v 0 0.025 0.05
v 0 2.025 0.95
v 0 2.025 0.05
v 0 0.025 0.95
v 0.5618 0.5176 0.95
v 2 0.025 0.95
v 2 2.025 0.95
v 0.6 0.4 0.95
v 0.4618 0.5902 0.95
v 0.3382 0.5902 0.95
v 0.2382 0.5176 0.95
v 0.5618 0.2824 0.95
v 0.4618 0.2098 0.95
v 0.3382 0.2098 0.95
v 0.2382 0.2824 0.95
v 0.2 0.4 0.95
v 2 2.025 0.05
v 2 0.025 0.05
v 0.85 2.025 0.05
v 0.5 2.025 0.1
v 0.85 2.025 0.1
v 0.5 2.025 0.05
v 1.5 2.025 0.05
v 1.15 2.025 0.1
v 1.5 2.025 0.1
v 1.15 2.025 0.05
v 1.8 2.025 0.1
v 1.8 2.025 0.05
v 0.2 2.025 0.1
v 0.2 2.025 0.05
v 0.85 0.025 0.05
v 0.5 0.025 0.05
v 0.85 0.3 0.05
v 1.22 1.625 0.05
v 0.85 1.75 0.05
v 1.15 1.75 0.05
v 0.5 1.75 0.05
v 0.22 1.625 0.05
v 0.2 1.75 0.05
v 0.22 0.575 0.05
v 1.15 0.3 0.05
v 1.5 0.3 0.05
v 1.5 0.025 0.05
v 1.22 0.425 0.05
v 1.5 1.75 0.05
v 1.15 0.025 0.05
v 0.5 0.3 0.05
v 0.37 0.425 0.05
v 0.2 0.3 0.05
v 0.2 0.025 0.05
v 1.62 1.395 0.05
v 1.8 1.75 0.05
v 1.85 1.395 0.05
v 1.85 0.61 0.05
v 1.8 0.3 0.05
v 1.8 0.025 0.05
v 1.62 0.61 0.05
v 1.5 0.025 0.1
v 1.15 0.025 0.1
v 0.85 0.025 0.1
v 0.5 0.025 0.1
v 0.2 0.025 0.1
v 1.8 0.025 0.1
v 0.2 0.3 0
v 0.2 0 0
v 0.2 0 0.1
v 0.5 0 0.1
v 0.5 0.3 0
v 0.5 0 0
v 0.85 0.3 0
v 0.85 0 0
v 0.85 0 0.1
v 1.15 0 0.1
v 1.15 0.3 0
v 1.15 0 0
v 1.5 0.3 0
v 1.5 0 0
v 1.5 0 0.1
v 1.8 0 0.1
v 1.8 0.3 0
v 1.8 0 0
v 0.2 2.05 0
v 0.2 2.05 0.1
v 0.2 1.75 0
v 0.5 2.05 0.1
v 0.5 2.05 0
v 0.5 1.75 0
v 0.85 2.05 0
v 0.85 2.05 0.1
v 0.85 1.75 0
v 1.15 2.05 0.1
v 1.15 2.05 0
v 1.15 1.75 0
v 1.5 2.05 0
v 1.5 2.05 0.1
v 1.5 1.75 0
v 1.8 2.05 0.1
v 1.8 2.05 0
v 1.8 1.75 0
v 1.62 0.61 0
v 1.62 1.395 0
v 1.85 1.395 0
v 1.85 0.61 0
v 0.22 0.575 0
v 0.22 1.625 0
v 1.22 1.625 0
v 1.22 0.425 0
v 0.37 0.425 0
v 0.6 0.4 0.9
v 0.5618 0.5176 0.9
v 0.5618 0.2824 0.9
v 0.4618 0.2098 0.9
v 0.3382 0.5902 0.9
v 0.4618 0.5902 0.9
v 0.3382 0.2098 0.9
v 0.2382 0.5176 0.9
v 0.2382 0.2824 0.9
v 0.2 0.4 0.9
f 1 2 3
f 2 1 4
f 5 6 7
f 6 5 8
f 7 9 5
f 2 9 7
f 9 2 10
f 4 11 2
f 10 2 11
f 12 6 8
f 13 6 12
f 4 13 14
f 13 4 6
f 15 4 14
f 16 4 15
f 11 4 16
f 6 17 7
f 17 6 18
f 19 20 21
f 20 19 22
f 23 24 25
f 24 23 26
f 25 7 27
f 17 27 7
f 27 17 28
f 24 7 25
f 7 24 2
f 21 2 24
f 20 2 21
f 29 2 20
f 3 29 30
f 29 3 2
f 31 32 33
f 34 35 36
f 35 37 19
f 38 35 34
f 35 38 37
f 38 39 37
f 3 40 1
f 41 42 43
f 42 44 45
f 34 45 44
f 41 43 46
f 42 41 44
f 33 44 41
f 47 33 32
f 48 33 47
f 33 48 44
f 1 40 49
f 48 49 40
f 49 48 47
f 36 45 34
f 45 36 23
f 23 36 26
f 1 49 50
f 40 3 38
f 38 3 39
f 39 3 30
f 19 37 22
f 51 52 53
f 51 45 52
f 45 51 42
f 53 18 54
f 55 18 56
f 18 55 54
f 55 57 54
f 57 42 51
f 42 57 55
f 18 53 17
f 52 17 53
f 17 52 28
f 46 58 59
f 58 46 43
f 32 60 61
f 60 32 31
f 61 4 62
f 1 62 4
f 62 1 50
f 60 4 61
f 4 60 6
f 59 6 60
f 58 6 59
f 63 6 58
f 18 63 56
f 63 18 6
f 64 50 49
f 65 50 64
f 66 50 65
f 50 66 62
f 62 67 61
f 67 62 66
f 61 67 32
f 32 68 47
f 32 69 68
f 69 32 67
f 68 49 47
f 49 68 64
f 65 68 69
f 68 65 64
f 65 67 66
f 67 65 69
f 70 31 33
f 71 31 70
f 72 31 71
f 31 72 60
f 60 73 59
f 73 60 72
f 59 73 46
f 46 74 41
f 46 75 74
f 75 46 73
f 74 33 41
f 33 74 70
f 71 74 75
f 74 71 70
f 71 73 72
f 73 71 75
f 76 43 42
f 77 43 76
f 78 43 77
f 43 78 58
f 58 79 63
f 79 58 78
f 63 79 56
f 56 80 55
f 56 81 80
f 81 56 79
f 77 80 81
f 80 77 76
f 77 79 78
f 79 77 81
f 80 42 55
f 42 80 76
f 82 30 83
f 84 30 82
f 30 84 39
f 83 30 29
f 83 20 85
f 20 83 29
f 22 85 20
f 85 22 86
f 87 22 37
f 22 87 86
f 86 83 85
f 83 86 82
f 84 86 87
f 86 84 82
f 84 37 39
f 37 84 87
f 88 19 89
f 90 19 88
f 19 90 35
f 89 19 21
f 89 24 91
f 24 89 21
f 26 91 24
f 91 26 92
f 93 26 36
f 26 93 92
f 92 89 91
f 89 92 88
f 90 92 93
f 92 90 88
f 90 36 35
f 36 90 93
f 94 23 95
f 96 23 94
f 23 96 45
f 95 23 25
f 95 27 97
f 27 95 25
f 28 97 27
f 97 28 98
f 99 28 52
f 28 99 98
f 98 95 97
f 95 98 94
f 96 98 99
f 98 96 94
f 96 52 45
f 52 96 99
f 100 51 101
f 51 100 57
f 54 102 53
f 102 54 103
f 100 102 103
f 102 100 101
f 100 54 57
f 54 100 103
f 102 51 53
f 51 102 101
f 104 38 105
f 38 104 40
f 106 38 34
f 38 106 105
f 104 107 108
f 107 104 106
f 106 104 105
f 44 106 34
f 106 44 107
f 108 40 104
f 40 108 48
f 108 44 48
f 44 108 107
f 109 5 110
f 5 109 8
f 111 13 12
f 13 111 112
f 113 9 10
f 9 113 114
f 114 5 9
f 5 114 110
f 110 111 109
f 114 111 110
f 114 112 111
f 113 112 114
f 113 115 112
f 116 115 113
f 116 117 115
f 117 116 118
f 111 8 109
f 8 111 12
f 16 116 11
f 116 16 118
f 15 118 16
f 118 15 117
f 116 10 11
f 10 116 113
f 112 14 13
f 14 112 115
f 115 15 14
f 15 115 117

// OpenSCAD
difference()
{
    union()
    {
        translate([0,0.025,0.05])
        cube([2,2,0.9]);

        translate([0.2,0,0])
        cube([0.3,0.3,0.1]);
        translate([0.2+0.65,0,0])
        cube([0.3,0.3,0.1]);
        translate([0.2+2*0.65,0,0])
        cube([0.3,0.3,0.1]);

        translate([0.2,2-0.25,0])
        cube([0.3,0.3,0.1]);
        translate([0.2+0.65,2-0.25,0])
        cube([0.3,0.3,0.1]);
        translate([0.2+2*0.65,2-0.25,0])
        cube([0.3,0.3,0.1]);

        translate([2-0.23-0.15,0.61,0])
        cube([0.23,0.785,0.1]);

        linear_extrude(height = 0.1, center = false, convexity = 10)
        translate([0.22,0.4+0.025,0])
        polygon(points=[[0,0.15],[0,1.2],[1,1.2],[1,0],[0.15,0]]);
    }
    translate([0.4,0.4,0.9])
    cylinder(r=0.2,h=0.1,$fn=10);
}
